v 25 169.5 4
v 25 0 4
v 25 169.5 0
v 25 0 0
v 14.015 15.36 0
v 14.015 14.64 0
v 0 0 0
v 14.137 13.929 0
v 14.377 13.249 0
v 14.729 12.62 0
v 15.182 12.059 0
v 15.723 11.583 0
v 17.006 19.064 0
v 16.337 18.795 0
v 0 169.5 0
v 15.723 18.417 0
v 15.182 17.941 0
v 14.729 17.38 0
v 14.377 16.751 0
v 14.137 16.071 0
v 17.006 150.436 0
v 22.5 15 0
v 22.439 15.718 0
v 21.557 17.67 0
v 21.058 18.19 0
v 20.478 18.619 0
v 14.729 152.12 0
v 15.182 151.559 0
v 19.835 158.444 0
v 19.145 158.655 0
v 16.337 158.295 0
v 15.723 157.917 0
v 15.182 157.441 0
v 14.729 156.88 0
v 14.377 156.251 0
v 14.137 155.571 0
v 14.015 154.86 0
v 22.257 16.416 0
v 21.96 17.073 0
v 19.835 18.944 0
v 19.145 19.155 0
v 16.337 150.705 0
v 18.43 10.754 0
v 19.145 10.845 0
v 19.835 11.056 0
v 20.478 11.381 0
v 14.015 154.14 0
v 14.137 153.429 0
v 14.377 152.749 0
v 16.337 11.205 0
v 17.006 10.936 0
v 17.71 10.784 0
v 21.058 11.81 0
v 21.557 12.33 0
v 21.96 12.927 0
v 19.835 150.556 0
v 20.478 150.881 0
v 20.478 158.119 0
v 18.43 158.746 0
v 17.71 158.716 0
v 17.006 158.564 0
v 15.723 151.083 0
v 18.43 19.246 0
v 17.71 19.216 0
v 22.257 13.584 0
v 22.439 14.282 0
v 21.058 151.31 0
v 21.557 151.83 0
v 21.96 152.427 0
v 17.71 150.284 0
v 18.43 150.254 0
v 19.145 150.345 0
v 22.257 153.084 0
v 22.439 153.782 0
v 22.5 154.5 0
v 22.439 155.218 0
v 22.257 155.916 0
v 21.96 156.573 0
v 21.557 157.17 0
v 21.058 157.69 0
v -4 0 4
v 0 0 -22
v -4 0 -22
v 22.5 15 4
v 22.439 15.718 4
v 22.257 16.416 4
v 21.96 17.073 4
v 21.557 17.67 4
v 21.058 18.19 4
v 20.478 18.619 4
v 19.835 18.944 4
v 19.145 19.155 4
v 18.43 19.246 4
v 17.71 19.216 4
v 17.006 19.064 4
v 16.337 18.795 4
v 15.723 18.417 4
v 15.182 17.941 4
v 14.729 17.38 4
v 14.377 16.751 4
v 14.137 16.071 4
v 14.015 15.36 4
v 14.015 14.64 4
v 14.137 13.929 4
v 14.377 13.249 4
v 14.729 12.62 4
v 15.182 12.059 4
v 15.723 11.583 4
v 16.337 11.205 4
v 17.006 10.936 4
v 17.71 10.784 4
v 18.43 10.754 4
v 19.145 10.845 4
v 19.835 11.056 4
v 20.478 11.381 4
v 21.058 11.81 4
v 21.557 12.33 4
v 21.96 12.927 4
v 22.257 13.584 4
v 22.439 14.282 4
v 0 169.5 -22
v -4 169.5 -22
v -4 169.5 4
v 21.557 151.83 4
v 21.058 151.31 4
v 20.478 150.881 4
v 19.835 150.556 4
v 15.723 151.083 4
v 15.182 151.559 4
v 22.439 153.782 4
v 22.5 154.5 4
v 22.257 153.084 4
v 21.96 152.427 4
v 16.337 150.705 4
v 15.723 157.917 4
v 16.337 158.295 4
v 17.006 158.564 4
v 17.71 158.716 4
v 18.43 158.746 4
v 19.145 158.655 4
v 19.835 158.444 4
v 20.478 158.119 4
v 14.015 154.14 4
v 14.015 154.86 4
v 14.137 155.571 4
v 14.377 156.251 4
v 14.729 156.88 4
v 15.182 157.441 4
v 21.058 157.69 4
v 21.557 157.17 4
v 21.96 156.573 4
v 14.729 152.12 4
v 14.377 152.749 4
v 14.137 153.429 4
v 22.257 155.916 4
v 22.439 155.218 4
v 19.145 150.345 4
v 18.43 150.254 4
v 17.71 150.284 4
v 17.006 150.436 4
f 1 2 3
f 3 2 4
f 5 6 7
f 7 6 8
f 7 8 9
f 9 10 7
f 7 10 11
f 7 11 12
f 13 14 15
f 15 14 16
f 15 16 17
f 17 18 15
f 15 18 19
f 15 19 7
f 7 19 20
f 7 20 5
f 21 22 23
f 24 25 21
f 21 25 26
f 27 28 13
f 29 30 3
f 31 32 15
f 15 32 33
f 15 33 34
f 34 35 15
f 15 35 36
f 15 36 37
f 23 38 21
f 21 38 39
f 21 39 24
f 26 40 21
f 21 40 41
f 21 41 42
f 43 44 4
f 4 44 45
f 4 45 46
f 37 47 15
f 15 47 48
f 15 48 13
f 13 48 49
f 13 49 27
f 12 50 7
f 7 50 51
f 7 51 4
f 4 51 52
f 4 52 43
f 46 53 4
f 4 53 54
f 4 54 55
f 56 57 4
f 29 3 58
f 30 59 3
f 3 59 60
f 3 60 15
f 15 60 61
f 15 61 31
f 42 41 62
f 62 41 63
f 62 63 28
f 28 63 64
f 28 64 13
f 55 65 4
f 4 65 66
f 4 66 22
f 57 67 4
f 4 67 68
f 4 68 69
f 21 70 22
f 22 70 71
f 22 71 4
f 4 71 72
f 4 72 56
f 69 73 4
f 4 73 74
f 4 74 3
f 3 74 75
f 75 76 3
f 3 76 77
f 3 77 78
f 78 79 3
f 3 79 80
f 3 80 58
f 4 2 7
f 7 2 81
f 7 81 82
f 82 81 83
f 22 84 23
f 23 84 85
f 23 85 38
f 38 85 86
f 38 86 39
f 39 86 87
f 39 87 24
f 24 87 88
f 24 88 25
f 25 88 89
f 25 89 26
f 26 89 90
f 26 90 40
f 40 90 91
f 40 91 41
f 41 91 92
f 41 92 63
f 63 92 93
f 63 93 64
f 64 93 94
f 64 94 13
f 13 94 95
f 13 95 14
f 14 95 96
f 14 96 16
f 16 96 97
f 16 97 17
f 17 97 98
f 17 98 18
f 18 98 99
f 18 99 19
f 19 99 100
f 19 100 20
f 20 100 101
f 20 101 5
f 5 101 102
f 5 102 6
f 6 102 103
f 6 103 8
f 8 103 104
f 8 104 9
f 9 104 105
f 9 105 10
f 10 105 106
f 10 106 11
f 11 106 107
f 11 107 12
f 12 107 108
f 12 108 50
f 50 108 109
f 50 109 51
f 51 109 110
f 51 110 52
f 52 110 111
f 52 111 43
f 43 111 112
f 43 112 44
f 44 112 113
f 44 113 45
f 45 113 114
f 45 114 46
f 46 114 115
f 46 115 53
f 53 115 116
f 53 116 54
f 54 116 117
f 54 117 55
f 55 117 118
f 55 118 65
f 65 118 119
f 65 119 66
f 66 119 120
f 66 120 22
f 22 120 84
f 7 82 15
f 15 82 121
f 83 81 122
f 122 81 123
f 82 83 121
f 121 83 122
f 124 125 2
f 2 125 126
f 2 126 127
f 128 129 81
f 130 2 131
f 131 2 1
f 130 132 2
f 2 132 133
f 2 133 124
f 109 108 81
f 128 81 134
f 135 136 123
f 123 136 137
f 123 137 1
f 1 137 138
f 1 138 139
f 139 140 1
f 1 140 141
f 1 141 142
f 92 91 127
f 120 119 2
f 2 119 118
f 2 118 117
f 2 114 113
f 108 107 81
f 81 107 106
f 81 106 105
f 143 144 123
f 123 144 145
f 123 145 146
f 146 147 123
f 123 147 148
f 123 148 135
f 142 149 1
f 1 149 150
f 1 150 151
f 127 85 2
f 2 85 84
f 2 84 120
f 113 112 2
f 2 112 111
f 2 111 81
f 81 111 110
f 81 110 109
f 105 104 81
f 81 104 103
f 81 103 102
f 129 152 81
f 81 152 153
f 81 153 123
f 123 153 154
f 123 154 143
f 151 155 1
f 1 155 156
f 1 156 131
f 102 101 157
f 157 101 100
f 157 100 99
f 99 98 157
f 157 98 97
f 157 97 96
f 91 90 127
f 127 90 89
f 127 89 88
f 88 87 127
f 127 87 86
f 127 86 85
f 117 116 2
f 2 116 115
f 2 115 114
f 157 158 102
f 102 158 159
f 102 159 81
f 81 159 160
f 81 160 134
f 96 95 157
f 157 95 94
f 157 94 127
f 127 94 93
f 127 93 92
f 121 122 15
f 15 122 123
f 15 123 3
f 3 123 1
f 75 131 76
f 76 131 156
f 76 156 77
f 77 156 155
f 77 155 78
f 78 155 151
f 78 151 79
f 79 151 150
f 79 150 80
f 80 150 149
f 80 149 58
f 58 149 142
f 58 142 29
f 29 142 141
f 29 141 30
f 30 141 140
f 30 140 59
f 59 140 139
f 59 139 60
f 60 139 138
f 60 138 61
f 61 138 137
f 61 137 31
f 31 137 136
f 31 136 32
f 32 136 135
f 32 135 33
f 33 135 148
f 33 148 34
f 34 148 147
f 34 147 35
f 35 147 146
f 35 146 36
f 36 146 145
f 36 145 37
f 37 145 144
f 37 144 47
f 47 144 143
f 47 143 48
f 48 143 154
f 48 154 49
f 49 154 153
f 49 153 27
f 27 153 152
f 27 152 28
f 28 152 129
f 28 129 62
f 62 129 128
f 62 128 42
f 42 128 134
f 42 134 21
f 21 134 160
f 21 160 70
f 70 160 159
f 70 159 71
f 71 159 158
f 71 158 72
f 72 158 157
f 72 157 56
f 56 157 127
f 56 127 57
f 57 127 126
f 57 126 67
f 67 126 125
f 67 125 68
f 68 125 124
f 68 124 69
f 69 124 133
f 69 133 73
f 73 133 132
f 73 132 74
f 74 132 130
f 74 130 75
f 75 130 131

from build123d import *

# Parameters (mm, degrees)
CROQUIS1_W              = 25
CROQUIS1_H              = 3
SALIENTE_EXTRUIR1_DEPTH = 195
CROQUIS2_R              = 4.25
CORTAR_EXTRUIR1_DEPTH   = 195
CROQUIS3_W              = 4
CROQUIS3_H              = 25
SALIENTE_EXTRUIR2_DEPTH = 195
SALIENTE_EXTRUIR3_START = 1
CROQUIS4_W              = 29
CROQUIS4_H              = 195
CROQUIS4_R              = 4.25
SALIENTE_EXTRUIR3_DEPTH = 1
CROQUIS5_W              = 80.668780501
CROQUIS5_H              = 25.5
CORTAR_EXTRUIR2_DEPTH   = 30
CROQUIS6_R              = 4.25
CORTAR_EXTRUIR3_DEPTH   = 30
CROQUIS7_R              = 4.25
SALIENTE_EXTRUIR4_DEPTH = 4


with BuildPart() as part:
    # Croquis1 → Saliente-Extruir1 (new body)
    with BuildSketch(Plane(origin=(0, 0, 0), x_dir=(1, 0, 0), z_dir=(0, 1, 0))):
        with Locations((12.5, -1.5)):
            Rectangle(CROQUIS1_W, CROQUIS1_H)
    extrude(amount=SALIENTE_EXTRUIR1_DEPTH)

    # Croquis2 → Cortar-Extruir1 (cut)
    with BuildSketch(Plane.XY.offset(3)):
        with Locations((18.25, 180)):
            Circle(CROQUIS2_R)
        with Locations((18.25, 97.5)):
            Circle(CROQUIS2_R)
        with Locations((18.25, 15)):
            Circle(CROQUIS2_R)
    extrude(amount=-CORTAR_EXTRUIR1_DEPTH, mode=Mode.SUBTRACT)

    # Croquis3 → Saliente-Extruir2 (add)
    with BuildSketch(Plane(origin=(0, 195, 0), x_dir=(1, 0, 0), z_dir=(0, 1, 0))):
        with Locations((-2, 9.5)):
            Rectangle(CROQUIS3_W, CROQUIS3_H)
    extrude(amount=-SALIENTE_EXTRUIR2_DEPTH)

    # Croquis4 → Saliente-Extruir3 (add)
    with BuildSketch(Plane.XY.offset(3).offset(SALIENTE_EXTRUIR3_START)):
        with Locations((10.5, 97.5)):
            Rectangle(CROQUIS4_W, CROQUIS4_H)
        with Locations((18.25, 15)):
            Circle(CROQUIS4_R, mode=Mode.SUBTRACT)
        with Locations((18.25, 97.5)):
            Circle(CROQUIS4_R, mode=Mode.SUBTRACT)
        with Locations((18.25, 180)):
            Circle(CROQUIS4_R, mode=Mode.SUBTRACT)
    extrude(amount=-SALIENTE_EXTRUIR3_DEPTH)

    # Croquis5 → Cortar-Extruir2 (cut)
    with BuildSketch(Plane.XY.offset(4)):
        with Locations((-15.334390251, 182.25)):
            Rectangle(CROQUIS5_W, CROQUIS5_H)
    extrude(amount=-CORTAR_EXTRUIR2_DEPTH, mode=Mode.SUBTRACT)

    # Croquis6 → Cortar-Extruir3 (cut)
    with BuildSketch(Plane.XY.offset(4)):
        with Locations((18.25, 154.5)):
            Circle(CROQUIS6_R)
    extrude(amount=-CORTAR_EXTRUIR3_DEPTH, mode=Mode.SUBTRACT)

    # Croquis7 → Saliente-Extruir4 (add)
    with BuildSketch(Plane.XY.offset(4)):
        with Locations((18.25, 97.5)):
            Circle(CROQUIS7_R)
    extrude(amount=-SALIENTE_EXTRUIR4_DEPTH)


solid = part.part
